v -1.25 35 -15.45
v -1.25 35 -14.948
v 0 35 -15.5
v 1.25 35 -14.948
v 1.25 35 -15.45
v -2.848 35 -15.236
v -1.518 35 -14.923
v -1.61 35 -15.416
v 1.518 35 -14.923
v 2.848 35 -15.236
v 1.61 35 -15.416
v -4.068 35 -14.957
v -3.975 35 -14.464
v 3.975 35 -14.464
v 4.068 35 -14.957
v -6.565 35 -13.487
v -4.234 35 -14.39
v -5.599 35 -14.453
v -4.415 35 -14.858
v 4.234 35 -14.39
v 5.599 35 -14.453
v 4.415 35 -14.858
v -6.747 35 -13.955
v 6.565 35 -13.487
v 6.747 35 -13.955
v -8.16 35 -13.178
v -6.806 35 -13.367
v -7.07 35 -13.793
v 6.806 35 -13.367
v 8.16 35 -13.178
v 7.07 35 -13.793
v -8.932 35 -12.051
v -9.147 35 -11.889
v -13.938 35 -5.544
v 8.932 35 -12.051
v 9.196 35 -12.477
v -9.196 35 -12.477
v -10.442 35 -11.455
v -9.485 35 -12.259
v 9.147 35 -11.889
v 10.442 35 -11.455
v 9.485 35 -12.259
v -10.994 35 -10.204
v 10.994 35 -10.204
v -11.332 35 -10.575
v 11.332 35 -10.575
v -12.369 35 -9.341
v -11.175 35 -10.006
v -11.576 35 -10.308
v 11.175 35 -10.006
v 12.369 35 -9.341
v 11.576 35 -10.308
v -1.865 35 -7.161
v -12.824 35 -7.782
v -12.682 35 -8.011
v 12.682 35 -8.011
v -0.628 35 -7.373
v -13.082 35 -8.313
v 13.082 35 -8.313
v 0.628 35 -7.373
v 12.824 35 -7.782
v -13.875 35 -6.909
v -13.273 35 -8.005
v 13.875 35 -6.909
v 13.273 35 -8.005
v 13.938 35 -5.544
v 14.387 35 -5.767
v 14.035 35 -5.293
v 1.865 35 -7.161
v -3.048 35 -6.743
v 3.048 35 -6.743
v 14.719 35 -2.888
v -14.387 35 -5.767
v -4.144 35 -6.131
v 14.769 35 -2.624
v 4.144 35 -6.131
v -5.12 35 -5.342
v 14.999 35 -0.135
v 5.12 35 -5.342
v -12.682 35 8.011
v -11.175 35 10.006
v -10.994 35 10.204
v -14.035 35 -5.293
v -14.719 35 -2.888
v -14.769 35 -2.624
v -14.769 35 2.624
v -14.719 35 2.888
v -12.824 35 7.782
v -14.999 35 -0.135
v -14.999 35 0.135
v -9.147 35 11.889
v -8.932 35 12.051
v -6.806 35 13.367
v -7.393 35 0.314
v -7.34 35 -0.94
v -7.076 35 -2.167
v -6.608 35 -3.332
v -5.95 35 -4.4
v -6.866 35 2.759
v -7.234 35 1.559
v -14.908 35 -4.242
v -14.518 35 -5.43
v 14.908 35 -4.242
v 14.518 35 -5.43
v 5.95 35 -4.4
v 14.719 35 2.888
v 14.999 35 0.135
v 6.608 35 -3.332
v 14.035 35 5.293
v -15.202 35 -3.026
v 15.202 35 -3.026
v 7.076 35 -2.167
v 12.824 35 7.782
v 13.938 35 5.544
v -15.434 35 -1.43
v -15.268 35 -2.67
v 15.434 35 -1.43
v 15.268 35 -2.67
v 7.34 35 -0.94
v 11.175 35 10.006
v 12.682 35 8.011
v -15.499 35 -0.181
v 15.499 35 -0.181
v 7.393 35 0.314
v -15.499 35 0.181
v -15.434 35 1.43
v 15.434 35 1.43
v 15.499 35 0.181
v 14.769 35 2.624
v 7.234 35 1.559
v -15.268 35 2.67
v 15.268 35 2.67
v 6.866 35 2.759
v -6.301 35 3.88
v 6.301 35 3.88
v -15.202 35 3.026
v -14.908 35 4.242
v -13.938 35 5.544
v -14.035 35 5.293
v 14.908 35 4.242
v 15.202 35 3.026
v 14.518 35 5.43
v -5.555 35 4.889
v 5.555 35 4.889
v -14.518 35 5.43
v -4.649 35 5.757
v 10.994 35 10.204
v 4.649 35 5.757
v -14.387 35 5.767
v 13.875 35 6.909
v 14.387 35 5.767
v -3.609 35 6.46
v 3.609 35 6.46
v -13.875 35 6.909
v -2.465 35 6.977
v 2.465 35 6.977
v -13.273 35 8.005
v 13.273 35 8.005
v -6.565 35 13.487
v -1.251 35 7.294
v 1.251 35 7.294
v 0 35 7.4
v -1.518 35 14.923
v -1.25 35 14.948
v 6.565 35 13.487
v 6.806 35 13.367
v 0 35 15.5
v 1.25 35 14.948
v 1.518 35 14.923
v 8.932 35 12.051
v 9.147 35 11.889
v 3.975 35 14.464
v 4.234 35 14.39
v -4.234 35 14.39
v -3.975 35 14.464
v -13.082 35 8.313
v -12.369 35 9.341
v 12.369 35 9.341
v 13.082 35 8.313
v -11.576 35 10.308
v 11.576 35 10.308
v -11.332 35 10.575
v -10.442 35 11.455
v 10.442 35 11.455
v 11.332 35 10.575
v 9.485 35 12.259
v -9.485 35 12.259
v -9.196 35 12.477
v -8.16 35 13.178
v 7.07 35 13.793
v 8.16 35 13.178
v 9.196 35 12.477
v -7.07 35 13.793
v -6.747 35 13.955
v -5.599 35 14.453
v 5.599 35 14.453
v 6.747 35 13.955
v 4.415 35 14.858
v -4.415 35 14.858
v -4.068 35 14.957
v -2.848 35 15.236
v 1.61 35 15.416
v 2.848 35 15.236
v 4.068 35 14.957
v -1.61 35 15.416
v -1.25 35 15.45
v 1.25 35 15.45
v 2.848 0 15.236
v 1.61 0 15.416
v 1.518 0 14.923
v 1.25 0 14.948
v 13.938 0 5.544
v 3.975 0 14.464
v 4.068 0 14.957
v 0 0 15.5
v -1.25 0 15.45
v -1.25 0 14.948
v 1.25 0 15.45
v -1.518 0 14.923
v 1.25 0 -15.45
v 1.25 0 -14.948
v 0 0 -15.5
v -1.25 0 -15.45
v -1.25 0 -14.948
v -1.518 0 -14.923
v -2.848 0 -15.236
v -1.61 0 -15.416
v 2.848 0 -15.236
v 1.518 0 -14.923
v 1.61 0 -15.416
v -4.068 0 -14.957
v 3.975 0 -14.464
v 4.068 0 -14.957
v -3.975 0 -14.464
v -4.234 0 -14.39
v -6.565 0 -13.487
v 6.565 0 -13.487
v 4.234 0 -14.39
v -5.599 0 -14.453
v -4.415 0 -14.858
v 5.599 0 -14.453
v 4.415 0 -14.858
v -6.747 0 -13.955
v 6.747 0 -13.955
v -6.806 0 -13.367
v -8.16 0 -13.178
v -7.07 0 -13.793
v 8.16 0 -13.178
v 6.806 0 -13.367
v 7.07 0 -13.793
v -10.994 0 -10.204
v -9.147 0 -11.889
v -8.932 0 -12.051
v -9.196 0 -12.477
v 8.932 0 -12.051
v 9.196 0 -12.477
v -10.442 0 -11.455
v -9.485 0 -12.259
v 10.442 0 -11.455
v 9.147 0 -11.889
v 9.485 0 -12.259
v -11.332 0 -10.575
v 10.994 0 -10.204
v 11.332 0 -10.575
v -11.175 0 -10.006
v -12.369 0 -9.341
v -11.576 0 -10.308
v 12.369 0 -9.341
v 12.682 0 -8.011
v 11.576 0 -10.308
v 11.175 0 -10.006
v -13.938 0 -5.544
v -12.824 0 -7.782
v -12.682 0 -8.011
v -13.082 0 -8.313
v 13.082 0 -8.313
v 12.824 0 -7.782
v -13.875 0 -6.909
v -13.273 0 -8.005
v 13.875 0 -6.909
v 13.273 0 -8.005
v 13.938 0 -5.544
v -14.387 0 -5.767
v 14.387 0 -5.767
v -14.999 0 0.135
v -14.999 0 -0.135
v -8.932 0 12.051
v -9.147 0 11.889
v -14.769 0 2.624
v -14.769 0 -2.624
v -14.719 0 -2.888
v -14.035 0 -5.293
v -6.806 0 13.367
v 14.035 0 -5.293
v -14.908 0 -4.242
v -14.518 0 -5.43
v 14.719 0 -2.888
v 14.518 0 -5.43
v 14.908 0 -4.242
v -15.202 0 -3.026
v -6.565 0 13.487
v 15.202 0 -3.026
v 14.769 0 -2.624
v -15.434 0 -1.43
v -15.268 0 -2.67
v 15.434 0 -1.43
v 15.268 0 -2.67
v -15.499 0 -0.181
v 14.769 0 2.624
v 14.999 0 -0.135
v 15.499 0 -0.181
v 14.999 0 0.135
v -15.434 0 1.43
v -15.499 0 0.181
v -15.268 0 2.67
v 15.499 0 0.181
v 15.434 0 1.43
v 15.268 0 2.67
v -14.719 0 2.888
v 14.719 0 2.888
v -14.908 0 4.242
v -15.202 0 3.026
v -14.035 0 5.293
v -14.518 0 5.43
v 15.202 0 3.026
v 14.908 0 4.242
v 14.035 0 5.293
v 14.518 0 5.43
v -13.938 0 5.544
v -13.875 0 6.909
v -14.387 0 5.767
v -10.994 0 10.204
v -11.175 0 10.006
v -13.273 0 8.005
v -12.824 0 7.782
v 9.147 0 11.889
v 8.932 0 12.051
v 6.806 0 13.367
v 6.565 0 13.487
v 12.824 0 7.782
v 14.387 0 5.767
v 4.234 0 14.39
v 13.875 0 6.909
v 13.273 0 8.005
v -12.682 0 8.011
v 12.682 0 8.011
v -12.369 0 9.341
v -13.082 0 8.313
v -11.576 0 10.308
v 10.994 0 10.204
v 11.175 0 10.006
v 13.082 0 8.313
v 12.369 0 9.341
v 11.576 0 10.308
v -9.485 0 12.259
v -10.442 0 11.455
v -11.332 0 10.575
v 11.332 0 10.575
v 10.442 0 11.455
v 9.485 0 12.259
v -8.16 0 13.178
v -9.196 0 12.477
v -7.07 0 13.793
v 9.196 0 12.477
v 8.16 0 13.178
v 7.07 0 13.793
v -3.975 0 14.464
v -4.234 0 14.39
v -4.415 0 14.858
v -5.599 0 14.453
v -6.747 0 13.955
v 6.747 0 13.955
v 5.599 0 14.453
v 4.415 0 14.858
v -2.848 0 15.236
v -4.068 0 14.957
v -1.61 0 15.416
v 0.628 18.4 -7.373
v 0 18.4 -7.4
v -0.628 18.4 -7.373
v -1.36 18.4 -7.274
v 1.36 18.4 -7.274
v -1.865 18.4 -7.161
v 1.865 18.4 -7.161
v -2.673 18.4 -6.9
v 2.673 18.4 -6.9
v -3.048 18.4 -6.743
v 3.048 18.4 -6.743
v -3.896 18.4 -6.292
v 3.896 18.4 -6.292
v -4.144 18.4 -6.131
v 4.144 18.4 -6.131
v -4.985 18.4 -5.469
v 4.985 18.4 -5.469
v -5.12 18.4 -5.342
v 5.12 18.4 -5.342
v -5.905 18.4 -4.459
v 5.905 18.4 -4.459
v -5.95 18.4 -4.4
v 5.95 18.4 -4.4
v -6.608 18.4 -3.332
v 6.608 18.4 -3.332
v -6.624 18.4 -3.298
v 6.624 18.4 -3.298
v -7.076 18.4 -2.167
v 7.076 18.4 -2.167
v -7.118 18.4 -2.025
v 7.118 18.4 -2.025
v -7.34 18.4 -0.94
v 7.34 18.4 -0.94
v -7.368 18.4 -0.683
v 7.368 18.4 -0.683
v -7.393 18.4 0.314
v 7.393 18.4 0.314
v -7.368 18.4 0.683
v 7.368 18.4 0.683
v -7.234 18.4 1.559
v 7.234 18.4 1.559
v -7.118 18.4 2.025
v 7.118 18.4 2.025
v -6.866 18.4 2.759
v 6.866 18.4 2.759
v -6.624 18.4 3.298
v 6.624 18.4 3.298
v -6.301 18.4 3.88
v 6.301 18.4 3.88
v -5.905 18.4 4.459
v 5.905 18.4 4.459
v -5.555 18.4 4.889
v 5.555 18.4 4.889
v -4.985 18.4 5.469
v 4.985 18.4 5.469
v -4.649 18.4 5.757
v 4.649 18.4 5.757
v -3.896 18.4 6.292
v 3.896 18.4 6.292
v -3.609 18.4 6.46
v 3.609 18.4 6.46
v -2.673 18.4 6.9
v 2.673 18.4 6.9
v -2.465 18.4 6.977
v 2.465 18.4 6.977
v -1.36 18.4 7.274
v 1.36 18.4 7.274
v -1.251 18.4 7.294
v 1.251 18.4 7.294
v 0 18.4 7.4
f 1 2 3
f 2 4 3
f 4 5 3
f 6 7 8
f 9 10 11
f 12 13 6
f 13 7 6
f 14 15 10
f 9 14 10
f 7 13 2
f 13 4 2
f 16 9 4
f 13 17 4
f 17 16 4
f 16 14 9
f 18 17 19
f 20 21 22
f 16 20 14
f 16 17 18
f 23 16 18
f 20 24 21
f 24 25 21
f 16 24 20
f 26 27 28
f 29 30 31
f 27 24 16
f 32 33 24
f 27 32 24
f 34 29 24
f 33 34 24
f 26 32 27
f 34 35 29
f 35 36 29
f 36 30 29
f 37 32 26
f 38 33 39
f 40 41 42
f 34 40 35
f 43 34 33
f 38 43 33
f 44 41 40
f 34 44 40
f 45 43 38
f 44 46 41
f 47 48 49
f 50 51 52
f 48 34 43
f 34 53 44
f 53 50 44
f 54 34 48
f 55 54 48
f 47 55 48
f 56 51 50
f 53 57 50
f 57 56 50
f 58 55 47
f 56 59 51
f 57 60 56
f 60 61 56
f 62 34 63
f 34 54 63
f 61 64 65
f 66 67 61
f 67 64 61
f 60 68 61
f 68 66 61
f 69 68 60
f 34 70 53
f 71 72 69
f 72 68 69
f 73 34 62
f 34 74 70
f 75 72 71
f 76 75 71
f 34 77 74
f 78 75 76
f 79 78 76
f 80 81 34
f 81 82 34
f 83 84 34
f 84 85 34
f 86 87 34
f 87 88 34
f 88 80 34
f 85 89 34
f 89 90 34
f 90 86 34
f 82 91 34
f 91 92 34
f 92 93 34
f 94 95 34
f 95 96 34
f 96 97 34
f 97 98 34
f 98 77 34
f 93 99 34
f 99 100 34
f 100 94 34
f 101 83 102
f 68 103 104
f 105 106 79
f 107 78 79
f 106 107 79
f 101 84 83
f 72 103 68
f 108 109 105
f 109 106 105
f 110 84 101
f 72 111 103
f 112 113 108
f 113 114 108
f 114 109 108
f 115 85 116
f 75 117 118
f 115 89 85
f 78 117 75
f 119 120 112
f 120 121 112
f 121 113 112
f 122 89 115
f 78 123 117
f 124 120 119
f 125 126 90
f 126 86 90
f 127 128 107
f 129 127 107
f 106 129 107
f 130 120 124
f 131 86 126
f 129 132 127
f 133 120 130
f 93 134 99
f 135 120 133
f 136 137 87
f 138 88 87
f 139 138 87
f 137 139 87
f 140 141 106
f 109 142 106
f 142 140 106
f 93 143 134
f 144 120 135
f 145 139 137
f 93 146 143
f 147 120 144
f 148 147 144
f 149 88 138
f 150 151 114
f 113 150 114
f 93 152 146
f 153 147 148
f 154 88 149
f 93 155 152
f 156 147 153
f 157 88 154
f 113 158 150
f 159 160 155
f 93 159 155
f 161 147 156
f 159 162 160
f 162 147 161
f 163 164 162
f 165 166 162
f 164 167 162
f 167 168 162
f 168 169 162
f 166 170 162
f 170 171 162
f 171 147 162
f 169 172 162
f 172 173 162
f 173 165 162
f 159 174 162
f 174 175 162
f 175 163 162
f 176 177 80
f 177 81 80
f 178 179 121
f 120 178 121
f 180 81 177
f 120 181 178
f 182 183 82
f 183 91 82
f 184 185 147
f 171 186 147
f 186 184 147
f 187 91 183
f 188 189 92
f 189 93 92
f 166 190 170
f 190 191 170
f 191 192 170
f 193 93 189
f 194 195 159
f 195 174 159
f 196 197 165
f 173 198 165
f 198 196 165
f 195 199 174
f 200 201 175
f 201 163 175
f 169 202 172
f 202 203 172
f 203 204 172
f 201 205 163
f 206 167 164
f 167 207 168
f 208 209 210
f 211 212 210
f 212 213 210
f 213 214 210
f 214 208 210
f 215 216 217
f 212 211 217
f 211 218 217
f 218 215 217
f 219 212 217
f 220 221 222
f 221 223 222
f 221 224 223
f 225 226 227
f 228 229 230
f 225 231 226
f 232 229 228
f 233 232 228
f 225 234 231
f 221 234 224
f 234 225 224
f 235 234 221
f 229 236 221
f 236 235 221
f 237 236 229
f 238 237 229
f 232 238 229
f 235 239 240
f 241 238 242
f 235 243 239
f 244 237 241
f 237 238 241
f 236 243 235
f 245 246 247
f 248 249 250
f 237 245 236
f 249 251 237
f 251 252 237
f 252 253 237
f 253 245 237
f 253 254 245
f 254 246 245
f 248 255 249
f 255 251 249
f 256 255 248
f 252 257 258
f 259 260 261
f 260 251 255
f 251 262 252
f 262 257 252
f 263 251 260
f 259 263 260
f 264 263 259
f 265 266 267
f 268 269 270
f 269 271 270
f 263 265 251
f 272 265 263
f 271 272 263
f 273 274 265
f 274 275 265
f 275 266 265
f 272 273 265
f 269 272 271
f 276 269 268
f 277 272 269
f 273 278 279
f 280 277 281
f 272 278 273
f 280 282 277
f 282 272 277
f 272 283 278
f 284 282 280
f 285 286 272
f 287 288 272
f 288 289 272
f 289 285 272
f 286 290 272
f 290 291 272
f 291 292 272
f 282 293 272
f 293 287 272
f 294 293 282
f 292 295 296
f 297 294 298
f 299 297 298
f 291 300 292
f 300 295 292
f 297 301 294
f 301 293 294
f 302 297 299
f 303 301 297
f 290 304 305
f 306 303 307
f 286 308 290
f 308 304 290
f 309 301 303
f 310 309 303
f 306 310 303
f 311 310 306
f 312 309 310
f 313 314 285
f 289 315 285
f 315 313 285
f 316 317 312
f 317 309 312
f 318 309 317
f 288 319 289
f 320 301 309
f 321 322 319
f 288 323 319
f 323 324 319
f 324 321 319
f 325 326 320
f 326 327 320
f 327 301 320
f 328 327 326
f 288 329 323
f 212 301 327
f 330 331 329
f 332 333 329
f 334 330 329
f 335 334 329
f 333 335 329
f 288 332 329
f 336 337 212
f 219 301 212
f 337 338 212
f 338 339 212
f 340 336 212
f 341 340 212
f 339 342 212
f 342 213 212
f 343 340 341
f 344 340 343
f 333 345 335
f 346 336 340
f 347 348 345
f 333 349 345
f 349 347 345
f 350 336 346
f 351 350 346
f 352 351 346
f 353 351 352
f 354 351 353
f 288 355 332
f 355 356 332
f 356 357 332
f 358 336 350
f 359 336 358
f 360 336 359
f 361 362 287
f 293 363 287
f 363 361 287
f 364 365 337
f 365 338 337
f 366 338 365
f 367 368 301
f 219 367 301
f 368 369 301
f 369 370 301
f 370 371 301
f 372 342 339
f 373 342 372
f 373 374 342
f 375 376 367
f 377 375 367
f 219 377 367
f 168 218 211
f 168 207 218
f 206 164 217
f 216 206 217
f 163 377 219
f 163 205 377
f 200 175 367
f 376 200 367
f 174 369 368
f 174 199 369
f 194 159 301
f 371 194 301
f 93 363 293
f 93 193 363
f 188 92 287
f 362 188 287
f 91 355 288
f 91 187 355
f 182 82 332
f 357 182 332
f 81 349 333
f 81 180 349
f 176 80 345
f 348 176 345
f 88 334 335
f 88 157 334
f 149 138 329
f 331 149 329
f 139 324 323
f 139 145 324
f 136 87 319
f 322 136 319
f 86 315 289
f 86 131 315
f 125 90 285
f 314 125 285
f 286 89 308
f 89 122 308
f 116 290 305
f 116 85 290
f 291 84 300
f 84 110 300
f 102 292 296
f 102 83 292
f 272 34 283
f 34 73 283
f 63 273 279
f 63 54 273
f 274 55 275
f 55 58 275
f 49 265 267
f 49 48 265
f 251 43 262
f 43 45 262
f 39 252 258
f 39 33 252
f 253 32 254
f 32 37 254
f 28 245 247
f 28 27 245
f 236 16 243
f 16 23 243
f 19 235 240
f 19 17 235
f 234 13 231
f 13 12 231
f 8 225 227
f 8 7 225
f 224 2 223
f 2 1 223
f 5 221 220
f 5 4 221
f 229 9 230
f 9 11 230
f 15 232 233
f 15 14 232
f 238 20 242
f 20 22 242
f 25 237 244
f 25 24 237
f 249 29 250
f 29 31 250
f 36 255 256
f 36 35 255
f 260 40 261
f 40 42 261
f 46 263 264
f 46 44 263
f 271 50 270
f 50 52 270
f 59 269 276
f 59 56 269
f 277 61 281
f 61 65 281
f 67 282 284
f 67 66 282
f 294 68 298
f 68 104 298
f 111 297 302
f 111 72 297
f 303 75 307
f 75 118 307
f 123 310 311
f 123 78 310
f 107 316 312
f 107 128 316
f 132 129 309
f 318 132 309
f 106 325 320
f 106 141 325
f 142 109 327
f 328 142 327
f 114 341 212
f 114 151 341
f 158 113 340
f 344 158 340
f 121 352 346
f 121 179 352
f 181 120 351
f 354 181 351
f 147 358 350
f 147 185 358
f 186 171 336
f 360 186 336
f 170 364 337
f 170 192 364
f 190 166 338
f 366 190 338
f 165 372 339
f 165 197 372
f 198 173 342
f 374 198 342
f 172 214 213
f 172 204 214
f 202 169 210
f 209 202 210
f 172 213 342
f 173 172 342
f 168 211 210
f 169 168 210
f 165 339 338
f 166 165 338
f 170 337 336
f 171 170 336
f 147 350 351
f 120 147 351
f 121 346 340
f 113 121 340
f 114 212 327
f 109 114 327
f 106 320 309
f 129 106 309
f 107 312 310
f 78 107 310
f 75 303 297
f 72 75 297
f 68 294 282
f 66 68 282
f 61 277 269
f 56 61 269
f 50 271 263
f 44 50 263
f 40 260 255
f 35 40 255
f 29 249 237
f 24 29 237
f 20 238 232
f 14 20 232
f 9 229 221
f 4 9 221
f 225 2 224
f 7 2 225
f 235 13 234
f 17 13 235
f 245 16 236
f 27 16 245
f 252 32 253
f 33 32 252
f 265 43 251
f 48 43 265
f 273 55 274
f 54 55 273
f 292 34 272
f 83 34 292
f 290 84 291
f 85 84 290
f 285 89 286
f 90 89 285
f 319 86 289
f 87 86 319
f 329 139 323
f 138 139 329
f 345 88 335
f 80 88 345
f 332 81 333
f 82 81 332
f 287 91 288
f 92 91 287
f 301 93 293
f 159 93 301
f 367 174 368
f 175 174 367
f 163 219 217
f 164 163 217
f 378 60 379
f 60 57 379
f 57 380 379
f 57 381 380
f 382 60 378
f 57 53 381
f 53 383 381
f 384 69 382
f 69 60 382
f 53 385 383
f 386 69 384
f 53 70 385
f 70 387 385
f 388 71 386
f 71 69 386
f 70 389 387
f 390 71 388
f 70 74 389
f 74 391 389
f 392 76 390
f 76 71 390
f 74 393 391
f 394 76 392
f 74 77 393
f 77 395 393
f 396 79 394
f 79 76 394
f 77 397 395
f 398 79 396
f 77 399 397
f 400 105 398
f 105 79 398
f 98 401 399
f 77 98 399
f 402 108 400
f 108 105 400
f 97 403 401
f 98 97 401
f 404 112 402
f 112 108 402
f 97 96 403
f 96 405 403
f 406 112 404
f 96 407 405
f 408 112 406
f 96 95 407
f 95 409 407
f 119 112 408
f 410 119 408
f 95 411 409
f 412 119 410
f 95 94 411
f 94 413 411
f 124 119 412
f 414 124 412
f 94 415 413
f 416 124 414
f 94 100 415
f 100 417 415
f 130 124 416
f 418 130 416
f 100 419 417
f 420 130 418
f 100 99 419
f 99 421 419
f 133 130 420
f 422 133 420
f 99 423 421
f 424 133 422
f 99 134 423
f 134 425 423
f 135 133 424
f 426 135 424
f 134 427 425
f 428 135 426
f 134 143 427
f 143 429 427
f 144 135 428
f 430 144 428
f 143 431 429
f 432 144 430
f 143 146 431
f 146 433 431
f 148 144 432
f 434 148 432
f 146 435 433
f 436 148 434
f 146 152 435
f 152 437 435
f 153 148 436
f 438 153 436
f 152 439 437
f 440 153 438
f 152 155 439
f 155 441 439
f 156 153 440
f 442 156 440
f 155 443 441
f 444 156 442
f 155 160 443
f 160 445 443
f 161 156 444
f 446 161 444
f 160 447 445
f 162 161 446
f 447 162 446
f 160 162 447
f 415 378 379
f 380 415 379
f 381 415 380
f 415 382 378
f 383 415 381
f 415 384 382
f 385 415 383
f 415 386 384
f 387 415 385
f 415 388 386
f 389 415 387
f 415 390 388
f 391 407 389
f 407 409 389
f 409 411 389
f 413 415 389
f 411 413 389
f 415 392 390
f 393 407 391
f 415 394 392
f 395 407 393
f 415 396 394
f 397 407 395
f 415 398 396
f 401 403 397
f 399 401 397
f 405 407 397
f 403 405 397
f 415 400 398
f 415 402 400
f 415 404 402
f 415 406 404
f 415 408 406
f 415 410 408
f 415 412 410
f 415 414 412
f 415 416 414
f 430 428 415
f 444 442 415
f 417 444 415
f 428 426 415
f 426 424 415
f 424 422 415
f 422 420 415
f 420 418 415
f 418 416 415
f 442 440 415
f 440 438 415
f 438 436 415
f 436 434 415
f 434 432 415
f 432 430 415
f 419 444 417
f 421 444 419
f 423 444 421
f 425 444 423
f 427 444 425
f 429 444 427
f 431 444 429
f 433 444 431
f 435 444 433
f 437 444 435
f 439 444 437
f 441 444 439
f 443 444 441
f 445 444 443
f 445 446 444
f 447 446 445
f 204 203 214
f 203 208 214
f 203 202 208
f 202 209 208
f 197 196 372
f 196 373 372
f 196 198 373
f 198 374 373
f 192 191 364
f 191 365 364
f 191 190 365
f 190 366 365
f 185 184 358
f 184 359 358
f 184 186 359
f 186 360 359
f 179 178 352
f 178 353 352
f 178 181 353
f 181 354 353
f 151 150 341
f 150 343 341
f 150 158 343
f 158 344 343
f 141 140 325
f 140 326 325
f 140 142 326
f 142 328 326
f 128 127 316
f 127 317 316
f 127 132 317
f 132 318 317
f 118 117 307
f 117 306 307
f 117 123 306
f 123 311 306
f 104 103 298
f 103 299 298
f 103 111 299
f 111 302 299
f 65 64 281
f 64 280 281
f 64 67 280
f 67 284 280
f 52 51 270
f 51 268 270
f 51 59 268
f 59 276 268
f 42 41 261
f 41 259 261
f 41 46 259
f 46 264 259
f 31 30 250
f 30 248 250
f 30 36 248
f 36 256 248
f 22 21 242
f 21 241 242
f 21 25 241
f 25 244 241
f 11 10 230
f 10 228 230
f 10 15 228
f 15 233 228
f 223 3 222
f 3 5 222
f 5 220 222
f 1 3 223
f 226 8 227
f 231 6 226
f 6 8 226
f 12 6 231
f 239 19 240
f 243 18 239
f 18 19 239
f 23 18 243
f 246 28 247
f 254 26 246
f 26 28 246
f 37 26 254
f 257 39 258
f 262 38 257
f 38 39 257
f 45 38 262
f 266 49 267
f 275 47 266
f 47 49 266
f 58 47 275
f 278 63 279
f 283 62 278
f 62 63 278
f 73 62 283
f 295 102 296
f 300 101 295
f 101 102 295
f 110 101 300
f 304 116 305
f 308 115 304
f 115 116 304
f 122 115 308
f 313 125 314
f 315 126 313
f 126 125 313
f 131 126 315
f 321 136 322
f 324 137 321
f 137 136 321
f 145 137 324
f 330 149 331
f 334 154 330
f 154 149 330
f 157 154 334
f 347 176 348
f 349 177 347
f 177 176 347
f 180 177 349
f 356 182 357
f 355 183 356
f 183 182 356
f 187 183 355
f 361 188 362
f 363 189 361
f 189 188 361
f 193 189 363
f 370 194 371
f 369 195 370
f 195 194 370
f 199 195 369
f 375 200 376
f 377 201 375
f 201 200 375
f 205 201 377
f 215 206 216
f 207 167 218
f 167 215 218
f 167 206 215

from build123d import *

# Parameters (mm, degrees)
SKETCH1_R                = 15
BOSS_EXTRUDE1_DEPTH      = 35
SKETCH2_R                = 7.4
CUT_EXTRUDE1_DEPTH       = 16.6
BOSS_EXTRUDE4_REACH      = 46.179
BOSS_EXTRUDE4_END_RADIUS = 17
SKETCH5_W                = 2.5
SKETCH5_H                = 35
CIRPATTERN1_COUNT        = 34
CUT_EXTRUDE2_DEPTH       = 43.460544331
CUT_EXTRUDE2_DEPTH_BACK  = 43.460544331
SKETCH6_R                = 17
SKETCH6_R_2              = 15.5


with BuildPart() as part:
    # Sketch1 → Boss-Extrude1 (new body)
    with BuildSketch(Plane(origin=(0, 0, 0), x_dir=(1, 0, 0), z_dir=(0, 1, 0))):
        with Locations(Location((0, 0, 0), (0, 0, 270))):
            Circle(SKETCH1_R)
    extrude(amount=BOSS_EXTRUDE1_DEPTH)

    # Sketch2 → Cut-Extrude1 (cut)
    with BuildSketch(Plane(origin=(0, 35, 0), x_dir=(1, 0, 0), z_dir=(0, 1, 0))):
        with Locations(Location((0, 0, 0), (0, 0, 270))):
            Circle(SKETCH2_R)
    extrude(amount=-CUT_EXTRUDE1_DEPTH, mode=Mode.SUBTRACT)

    # Boss-Extrude4: up to this cylinder (the profile starts inside it)
    boss_extrude4_end = Plane(origin=(0, 17.5, 0), z_dir=(0, -1, 0)) * Cylinder(BOSS_EXTRUDE4_END_RADIUS, 127.358, mode=Mode.PRIVATE)
    # Sketch5 → Boss-Extrude4 (add, up to the surface)
    with BuildSketch(Plane.XY.offset(7.4), mode=Mode.PRIVATE) as boss_extrude4_sk1:
        with Locations((0, 17.5)):
            Rectangle(SKETCH5_W, SKETCH5_H)
    boss_extrude4_tool1 = extrude(boss_extrude4_sk1.sketch, amount=BOSS_EXTRUDE4_REACH, mode=Mode.PRIVATE) & boss_extrude4_end
    boss_extrude4 = boss_extrude4_tool1.solids().sort_by_distance((0, 17.5, 7.4))[0]
    add(boss_extrude4)

    # CirPattern1: Boss-Extrude4 ×34 about axis
    cirpattern1_axis = Axis((0, 0, 0), (0, 1, 0))
    for i in range(1, CIRPATTERN1_COUNT):
        add(boss_extrude4.rotate(cirpattern1_axis, i * 360 / CIRPATTERN1_COUNT))

    # Sketch6 → Cut-Extrude2 (cut, two sides: drawn at the far end of the back side and taken through both)
    with BuildSketch(Plane(origin=(0, 35, 0), x_dir=(1, 0, 0), z_dir=(0, 1, 0)).offset(-CUT_EXTRUDE2_DEPTH_BACK)):
        Circle(SKETCH6_R)
        Circle(SKETCH6_R_2, mode=Mode.SUBTRACT)
    extrude(amount=CUT_EXTRUDE2_DEPTH + CUT_EXTRUDE2_DEPTH_BACK, mode=Mode.SUBTRACT)


solid = part.part
